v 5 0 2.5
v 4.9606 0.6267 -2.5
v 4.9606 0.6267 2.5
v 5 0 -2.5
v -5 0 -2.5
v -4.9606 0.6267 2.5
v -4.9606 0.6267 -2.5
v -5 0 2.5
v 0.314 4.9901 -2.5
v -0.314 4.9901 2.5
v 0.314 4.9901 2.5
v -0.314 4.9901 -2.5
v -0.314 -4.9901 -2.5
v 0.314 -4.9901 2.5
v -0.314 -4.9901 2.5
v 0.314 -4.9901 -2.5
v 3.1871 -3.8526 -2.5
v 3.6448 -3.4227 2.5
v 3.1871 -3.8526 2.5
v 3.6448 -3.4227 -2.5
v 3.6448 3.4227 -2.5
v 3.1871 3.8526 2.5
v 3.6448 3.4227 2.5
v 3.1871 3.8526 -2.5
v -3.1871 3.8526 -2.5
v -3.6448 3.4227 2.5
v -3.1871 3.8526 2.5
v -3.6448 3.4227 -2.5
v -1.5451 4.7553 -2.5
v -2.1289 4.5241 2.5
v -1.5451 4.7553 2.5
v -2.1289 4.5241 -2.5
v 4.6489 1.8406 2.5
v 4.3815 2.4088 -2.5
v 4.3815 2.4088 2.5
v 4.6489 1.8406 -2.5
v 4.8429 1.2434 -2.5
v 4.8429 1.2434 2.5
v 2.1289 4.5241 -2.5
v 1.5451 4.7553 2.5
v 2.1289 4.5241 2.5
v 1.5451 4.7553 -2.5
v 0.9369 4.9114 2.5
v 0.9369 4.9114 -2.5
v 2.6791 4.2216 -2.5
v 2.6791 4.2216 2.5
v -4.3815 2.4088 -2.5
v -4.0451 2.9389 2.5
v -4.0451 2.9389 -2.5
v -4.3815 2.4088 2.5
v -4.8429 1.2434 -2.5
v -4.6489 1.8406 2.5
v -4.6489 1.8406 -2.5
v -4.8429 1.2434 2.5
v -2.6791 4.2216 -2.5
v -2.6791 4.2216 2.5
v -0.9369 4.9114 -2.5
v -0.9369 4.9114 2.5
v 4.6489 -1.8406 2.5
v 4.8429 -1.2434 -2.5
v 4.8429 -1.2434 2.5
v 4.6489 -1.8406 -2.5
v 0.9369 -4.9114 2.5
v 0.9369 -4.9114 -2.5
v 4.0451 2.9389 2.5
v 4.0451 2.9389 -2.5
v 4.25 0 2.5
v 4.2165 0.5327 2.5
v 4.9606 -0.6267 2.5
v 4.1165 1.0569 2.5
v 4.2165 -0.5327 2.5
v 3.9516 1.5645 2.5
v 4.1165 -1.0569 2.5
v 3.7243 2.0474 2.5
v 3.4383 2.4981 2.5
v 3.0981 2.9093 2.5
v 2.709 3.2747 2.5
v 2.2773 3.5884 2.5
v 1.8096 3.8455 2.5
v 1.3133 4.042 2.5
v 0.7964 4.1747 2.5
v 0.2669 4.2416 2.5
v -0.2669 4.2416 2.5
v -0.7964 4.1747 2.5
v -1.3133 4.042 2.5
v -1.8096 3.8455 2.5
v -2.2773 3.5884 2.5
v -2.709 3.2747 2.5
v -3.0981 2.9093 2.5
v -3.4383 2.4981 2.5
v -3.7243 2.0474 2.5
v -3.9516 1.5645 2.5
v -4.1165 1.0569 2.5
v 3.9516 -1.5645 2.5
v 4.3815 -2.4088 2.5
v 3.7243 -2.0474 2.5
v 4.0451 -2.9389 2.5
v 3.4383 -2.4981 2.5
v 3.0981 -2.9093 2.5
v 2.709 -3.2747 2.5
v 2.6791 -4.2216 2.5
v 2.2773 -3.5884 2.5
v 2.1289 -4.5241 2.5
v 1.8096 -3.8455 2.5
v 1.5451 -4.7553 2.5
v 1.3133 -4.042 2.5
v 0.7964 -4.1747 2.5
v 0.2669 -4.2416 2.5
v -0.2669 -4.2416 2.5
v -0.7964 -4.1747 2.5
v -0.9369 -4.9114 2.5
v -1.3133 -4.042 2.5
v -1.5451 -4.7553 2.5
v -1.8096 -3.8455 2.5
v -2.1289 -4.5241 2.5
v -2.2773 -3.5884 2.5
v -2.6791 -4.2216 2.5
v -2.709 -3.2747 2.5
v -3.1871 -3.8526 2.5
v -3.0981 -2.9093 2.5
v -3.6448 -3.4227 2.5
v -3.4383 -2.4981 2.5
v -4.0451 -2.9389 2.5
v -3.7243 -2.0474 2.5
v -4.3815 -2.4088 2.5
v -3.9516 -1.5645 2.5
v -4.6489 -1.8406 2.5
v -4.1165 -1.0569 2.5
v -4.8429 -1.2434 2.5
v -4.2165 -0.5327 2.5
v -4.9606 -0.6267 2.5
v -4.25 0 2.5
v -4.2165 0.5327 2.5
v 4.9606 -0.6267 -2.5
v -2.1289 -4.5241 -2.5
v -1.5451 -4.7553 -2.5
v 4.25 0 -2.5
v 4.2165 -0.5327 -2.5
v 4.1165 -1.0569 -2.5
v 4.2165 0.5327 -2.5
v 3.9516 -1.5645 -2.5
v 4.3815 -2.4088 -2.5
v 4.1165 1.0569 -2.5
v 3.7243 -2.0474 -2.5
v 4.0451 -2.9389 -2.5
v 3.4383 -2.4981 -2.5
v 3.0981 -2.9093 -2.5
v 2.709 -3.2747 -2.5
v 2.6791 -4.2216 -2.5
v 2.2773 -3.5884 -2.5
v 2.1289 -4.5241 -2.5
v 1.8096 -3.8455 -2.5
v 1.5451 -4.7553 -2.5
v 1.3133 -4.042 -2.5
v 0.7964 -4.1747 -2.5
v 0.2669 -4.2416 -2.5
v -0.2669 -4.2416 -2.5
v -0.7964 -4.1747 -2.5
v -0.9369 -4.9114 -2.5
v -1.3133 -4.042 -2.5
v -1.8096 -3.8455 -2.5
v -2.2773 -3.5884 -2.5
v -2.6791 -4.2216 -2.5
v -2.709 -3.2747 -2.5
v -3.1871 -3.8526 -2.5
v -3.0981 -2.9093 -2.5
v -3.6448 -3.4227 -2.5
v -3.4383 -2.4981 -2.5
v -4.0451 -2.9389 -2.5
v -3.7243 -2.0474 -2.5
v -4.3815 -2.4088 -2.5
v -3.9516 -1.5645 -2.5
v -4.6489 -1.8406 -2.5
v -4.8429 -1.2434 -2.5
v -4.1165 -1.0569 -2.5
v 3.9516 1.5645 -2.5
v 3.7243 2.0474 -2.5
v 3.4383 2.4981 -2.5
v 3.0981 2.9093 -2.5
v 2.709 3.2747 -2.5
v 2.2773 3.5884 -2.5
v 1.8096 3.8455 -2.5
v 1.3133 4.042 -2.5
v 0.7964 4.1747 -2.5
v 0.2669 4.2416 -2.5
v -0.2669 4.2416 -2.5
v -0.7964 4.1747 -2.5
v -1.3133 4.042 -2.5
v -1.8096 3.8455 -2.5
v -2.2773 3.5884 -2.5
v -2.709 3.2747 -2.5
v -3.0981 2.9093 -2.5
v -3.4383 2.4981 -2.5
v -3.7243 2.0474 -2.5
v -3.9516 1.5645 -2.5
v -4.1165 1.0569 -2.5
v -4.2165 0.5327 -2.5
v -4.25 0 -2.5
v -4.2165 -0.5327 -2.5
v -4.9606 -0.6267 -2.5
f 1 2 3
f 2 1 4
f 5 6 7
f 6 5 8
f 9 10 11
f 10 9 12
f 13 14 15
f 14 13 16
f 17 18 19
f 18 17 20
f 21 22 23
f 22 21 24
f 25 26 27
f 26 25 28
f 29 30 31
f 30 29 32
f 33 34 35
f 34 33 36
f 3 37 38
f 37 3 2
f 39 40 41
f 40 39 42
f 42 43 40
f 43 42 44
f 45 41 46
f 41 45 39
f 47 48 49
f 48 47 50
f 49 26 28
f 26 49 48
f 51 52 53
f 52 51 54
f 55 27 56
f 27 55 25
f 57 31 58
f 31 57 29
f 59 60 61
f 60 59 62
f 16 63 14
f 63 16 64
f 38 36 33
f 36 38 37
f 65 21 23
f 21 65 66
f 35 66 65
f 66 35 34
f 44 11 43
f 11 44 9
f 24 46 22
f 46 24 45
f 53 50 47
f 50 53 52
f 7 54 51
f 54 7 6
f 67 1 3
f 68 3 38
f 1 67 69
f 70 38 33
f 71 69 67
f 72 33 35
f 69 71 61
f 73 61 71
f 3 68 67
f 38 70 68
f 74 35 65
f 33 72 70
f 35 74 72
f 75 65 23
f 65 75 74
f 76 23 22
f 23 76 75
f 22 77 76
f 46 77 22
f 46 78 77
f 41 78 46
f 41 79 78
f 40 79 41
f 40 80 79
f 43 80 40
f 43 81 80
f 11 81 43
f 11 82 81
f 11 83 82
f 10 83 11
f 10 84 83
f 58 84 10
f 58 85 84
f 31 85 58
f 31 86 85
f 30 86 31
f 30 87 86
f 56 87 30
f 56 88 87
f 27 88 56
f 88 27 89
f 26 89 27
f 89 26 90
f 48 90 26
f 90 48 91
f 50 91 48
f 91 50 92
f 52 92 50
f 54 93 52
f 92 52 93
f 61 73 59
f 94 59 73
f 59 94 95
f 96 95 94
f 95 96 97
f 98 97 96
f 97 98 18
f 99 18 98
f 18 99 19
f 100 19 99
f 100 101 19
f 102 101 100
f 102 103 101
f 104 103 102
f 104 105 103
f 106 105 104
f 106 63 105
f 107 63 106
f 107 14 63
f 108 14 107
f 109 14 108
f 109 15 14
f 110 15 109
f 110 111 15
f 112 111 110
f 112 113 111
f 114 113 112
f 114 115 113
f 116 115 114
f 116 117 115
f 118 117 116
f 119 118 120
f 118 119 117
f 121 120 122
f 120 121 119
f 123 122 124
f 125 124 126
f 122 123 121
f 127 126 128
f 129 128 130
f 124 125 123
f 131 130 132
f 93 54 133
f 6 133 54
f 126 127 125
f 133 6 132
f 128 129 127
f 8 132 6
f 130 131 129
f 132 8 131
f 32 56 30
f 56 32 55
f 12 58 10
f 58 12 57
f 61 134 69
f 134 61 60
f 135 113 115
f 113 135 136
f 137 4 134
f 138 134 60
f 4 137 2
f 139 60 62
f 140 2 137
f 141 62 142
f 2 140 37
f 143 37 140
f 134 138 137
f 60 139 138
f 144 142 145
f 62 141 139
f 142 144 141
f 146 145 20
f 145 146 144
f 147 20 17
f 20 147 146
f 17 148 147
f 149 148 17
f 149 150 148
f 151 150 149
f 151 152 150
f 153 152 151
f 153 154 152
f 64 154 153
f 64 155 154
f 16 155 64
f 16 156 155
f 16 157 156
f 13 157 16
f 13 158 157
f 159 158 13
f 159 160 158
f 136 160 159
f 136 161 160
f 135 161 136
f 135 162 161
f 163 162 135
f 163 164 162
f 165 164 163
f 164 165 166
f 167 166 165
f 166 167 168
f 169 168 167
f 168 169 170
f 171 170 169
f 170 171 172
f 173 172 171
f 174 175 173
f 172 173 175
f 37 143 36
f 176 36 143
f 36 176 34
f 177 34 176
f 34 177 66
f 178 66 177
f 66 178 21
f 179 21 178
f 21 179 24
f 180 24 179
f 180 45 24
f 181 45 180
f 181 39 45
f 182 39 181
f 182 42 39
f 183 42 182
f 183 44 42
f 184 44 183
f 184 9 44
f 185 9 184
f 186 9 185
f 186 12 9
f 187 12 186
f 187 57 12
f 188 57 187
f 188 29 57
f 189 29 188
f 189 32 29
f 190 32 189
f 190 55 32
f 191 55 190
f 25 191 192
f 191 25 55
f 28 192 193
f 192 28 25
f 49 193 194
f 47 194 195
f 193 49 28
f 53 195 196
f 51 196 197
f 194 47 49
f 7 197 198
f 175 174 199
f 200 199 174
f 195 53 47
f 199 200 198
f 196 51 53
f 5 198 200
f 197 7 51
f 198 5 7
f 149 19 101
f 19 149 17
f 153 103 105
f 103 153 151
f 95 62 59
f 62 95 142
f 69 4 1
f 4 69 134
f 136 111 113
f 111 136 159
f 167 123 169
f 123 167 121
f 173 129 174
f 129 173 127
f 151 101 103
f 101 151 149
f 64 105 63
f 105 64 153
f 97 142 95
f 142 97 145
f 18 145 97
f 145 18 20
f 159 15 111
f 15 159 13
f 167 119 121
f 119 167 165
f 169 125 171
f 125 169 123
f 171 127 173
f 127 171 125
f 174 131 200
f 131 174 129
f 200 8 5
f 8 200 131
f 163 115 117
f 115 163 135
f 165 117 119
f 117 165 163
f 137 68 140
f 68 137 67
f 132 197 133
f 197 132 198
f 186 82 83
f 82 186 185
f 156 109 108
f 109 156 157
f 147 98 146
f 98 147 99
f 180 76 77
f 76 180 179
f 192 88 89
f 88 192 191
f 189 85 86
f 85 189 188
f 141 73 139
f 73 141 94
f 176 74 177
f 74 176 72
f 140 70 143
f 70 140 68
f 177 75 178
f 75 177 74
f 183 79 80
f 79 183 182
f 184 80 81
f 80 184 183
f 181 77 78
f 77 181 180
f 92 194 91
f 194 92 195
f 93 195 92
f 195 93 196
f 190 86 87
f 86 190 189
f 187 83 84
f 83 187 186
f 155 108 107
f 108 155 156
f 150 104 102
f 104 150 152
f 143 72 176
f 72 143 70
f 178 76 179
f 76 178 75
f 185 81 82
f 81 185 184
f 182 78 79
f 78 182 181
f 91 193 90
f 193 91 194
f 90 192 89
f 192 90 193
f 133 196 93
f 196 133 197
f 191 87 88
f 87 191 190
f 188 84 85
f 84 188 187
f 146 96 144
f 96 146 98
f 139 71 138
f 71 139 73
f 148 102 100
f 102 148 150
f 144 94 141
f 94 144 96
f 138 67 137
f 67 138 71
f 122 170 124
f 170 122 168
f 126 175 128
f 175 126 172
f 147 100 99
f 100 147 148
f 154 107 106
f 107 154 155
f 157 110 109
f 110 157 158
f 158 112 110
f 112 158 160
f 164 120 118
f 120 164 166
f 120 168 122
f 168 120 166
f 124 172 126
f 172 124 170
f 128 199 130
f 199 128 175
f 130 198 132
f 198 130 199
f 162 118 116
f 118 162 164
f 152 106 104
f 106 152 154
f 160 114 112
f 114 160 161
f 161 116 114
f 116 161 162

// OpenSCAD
$fn = 50;


difference() {
	union() {
		translate(v = [0, 0, -2.5000000000]) {
			cylinder(h = 5, r = 5.0000000000);
		}
	}
	union() {
		translate(v = [0, 0, -100.0000000000]) {
			cylinder(h = 200, r = 4.2500000000);
		}
	}
}
